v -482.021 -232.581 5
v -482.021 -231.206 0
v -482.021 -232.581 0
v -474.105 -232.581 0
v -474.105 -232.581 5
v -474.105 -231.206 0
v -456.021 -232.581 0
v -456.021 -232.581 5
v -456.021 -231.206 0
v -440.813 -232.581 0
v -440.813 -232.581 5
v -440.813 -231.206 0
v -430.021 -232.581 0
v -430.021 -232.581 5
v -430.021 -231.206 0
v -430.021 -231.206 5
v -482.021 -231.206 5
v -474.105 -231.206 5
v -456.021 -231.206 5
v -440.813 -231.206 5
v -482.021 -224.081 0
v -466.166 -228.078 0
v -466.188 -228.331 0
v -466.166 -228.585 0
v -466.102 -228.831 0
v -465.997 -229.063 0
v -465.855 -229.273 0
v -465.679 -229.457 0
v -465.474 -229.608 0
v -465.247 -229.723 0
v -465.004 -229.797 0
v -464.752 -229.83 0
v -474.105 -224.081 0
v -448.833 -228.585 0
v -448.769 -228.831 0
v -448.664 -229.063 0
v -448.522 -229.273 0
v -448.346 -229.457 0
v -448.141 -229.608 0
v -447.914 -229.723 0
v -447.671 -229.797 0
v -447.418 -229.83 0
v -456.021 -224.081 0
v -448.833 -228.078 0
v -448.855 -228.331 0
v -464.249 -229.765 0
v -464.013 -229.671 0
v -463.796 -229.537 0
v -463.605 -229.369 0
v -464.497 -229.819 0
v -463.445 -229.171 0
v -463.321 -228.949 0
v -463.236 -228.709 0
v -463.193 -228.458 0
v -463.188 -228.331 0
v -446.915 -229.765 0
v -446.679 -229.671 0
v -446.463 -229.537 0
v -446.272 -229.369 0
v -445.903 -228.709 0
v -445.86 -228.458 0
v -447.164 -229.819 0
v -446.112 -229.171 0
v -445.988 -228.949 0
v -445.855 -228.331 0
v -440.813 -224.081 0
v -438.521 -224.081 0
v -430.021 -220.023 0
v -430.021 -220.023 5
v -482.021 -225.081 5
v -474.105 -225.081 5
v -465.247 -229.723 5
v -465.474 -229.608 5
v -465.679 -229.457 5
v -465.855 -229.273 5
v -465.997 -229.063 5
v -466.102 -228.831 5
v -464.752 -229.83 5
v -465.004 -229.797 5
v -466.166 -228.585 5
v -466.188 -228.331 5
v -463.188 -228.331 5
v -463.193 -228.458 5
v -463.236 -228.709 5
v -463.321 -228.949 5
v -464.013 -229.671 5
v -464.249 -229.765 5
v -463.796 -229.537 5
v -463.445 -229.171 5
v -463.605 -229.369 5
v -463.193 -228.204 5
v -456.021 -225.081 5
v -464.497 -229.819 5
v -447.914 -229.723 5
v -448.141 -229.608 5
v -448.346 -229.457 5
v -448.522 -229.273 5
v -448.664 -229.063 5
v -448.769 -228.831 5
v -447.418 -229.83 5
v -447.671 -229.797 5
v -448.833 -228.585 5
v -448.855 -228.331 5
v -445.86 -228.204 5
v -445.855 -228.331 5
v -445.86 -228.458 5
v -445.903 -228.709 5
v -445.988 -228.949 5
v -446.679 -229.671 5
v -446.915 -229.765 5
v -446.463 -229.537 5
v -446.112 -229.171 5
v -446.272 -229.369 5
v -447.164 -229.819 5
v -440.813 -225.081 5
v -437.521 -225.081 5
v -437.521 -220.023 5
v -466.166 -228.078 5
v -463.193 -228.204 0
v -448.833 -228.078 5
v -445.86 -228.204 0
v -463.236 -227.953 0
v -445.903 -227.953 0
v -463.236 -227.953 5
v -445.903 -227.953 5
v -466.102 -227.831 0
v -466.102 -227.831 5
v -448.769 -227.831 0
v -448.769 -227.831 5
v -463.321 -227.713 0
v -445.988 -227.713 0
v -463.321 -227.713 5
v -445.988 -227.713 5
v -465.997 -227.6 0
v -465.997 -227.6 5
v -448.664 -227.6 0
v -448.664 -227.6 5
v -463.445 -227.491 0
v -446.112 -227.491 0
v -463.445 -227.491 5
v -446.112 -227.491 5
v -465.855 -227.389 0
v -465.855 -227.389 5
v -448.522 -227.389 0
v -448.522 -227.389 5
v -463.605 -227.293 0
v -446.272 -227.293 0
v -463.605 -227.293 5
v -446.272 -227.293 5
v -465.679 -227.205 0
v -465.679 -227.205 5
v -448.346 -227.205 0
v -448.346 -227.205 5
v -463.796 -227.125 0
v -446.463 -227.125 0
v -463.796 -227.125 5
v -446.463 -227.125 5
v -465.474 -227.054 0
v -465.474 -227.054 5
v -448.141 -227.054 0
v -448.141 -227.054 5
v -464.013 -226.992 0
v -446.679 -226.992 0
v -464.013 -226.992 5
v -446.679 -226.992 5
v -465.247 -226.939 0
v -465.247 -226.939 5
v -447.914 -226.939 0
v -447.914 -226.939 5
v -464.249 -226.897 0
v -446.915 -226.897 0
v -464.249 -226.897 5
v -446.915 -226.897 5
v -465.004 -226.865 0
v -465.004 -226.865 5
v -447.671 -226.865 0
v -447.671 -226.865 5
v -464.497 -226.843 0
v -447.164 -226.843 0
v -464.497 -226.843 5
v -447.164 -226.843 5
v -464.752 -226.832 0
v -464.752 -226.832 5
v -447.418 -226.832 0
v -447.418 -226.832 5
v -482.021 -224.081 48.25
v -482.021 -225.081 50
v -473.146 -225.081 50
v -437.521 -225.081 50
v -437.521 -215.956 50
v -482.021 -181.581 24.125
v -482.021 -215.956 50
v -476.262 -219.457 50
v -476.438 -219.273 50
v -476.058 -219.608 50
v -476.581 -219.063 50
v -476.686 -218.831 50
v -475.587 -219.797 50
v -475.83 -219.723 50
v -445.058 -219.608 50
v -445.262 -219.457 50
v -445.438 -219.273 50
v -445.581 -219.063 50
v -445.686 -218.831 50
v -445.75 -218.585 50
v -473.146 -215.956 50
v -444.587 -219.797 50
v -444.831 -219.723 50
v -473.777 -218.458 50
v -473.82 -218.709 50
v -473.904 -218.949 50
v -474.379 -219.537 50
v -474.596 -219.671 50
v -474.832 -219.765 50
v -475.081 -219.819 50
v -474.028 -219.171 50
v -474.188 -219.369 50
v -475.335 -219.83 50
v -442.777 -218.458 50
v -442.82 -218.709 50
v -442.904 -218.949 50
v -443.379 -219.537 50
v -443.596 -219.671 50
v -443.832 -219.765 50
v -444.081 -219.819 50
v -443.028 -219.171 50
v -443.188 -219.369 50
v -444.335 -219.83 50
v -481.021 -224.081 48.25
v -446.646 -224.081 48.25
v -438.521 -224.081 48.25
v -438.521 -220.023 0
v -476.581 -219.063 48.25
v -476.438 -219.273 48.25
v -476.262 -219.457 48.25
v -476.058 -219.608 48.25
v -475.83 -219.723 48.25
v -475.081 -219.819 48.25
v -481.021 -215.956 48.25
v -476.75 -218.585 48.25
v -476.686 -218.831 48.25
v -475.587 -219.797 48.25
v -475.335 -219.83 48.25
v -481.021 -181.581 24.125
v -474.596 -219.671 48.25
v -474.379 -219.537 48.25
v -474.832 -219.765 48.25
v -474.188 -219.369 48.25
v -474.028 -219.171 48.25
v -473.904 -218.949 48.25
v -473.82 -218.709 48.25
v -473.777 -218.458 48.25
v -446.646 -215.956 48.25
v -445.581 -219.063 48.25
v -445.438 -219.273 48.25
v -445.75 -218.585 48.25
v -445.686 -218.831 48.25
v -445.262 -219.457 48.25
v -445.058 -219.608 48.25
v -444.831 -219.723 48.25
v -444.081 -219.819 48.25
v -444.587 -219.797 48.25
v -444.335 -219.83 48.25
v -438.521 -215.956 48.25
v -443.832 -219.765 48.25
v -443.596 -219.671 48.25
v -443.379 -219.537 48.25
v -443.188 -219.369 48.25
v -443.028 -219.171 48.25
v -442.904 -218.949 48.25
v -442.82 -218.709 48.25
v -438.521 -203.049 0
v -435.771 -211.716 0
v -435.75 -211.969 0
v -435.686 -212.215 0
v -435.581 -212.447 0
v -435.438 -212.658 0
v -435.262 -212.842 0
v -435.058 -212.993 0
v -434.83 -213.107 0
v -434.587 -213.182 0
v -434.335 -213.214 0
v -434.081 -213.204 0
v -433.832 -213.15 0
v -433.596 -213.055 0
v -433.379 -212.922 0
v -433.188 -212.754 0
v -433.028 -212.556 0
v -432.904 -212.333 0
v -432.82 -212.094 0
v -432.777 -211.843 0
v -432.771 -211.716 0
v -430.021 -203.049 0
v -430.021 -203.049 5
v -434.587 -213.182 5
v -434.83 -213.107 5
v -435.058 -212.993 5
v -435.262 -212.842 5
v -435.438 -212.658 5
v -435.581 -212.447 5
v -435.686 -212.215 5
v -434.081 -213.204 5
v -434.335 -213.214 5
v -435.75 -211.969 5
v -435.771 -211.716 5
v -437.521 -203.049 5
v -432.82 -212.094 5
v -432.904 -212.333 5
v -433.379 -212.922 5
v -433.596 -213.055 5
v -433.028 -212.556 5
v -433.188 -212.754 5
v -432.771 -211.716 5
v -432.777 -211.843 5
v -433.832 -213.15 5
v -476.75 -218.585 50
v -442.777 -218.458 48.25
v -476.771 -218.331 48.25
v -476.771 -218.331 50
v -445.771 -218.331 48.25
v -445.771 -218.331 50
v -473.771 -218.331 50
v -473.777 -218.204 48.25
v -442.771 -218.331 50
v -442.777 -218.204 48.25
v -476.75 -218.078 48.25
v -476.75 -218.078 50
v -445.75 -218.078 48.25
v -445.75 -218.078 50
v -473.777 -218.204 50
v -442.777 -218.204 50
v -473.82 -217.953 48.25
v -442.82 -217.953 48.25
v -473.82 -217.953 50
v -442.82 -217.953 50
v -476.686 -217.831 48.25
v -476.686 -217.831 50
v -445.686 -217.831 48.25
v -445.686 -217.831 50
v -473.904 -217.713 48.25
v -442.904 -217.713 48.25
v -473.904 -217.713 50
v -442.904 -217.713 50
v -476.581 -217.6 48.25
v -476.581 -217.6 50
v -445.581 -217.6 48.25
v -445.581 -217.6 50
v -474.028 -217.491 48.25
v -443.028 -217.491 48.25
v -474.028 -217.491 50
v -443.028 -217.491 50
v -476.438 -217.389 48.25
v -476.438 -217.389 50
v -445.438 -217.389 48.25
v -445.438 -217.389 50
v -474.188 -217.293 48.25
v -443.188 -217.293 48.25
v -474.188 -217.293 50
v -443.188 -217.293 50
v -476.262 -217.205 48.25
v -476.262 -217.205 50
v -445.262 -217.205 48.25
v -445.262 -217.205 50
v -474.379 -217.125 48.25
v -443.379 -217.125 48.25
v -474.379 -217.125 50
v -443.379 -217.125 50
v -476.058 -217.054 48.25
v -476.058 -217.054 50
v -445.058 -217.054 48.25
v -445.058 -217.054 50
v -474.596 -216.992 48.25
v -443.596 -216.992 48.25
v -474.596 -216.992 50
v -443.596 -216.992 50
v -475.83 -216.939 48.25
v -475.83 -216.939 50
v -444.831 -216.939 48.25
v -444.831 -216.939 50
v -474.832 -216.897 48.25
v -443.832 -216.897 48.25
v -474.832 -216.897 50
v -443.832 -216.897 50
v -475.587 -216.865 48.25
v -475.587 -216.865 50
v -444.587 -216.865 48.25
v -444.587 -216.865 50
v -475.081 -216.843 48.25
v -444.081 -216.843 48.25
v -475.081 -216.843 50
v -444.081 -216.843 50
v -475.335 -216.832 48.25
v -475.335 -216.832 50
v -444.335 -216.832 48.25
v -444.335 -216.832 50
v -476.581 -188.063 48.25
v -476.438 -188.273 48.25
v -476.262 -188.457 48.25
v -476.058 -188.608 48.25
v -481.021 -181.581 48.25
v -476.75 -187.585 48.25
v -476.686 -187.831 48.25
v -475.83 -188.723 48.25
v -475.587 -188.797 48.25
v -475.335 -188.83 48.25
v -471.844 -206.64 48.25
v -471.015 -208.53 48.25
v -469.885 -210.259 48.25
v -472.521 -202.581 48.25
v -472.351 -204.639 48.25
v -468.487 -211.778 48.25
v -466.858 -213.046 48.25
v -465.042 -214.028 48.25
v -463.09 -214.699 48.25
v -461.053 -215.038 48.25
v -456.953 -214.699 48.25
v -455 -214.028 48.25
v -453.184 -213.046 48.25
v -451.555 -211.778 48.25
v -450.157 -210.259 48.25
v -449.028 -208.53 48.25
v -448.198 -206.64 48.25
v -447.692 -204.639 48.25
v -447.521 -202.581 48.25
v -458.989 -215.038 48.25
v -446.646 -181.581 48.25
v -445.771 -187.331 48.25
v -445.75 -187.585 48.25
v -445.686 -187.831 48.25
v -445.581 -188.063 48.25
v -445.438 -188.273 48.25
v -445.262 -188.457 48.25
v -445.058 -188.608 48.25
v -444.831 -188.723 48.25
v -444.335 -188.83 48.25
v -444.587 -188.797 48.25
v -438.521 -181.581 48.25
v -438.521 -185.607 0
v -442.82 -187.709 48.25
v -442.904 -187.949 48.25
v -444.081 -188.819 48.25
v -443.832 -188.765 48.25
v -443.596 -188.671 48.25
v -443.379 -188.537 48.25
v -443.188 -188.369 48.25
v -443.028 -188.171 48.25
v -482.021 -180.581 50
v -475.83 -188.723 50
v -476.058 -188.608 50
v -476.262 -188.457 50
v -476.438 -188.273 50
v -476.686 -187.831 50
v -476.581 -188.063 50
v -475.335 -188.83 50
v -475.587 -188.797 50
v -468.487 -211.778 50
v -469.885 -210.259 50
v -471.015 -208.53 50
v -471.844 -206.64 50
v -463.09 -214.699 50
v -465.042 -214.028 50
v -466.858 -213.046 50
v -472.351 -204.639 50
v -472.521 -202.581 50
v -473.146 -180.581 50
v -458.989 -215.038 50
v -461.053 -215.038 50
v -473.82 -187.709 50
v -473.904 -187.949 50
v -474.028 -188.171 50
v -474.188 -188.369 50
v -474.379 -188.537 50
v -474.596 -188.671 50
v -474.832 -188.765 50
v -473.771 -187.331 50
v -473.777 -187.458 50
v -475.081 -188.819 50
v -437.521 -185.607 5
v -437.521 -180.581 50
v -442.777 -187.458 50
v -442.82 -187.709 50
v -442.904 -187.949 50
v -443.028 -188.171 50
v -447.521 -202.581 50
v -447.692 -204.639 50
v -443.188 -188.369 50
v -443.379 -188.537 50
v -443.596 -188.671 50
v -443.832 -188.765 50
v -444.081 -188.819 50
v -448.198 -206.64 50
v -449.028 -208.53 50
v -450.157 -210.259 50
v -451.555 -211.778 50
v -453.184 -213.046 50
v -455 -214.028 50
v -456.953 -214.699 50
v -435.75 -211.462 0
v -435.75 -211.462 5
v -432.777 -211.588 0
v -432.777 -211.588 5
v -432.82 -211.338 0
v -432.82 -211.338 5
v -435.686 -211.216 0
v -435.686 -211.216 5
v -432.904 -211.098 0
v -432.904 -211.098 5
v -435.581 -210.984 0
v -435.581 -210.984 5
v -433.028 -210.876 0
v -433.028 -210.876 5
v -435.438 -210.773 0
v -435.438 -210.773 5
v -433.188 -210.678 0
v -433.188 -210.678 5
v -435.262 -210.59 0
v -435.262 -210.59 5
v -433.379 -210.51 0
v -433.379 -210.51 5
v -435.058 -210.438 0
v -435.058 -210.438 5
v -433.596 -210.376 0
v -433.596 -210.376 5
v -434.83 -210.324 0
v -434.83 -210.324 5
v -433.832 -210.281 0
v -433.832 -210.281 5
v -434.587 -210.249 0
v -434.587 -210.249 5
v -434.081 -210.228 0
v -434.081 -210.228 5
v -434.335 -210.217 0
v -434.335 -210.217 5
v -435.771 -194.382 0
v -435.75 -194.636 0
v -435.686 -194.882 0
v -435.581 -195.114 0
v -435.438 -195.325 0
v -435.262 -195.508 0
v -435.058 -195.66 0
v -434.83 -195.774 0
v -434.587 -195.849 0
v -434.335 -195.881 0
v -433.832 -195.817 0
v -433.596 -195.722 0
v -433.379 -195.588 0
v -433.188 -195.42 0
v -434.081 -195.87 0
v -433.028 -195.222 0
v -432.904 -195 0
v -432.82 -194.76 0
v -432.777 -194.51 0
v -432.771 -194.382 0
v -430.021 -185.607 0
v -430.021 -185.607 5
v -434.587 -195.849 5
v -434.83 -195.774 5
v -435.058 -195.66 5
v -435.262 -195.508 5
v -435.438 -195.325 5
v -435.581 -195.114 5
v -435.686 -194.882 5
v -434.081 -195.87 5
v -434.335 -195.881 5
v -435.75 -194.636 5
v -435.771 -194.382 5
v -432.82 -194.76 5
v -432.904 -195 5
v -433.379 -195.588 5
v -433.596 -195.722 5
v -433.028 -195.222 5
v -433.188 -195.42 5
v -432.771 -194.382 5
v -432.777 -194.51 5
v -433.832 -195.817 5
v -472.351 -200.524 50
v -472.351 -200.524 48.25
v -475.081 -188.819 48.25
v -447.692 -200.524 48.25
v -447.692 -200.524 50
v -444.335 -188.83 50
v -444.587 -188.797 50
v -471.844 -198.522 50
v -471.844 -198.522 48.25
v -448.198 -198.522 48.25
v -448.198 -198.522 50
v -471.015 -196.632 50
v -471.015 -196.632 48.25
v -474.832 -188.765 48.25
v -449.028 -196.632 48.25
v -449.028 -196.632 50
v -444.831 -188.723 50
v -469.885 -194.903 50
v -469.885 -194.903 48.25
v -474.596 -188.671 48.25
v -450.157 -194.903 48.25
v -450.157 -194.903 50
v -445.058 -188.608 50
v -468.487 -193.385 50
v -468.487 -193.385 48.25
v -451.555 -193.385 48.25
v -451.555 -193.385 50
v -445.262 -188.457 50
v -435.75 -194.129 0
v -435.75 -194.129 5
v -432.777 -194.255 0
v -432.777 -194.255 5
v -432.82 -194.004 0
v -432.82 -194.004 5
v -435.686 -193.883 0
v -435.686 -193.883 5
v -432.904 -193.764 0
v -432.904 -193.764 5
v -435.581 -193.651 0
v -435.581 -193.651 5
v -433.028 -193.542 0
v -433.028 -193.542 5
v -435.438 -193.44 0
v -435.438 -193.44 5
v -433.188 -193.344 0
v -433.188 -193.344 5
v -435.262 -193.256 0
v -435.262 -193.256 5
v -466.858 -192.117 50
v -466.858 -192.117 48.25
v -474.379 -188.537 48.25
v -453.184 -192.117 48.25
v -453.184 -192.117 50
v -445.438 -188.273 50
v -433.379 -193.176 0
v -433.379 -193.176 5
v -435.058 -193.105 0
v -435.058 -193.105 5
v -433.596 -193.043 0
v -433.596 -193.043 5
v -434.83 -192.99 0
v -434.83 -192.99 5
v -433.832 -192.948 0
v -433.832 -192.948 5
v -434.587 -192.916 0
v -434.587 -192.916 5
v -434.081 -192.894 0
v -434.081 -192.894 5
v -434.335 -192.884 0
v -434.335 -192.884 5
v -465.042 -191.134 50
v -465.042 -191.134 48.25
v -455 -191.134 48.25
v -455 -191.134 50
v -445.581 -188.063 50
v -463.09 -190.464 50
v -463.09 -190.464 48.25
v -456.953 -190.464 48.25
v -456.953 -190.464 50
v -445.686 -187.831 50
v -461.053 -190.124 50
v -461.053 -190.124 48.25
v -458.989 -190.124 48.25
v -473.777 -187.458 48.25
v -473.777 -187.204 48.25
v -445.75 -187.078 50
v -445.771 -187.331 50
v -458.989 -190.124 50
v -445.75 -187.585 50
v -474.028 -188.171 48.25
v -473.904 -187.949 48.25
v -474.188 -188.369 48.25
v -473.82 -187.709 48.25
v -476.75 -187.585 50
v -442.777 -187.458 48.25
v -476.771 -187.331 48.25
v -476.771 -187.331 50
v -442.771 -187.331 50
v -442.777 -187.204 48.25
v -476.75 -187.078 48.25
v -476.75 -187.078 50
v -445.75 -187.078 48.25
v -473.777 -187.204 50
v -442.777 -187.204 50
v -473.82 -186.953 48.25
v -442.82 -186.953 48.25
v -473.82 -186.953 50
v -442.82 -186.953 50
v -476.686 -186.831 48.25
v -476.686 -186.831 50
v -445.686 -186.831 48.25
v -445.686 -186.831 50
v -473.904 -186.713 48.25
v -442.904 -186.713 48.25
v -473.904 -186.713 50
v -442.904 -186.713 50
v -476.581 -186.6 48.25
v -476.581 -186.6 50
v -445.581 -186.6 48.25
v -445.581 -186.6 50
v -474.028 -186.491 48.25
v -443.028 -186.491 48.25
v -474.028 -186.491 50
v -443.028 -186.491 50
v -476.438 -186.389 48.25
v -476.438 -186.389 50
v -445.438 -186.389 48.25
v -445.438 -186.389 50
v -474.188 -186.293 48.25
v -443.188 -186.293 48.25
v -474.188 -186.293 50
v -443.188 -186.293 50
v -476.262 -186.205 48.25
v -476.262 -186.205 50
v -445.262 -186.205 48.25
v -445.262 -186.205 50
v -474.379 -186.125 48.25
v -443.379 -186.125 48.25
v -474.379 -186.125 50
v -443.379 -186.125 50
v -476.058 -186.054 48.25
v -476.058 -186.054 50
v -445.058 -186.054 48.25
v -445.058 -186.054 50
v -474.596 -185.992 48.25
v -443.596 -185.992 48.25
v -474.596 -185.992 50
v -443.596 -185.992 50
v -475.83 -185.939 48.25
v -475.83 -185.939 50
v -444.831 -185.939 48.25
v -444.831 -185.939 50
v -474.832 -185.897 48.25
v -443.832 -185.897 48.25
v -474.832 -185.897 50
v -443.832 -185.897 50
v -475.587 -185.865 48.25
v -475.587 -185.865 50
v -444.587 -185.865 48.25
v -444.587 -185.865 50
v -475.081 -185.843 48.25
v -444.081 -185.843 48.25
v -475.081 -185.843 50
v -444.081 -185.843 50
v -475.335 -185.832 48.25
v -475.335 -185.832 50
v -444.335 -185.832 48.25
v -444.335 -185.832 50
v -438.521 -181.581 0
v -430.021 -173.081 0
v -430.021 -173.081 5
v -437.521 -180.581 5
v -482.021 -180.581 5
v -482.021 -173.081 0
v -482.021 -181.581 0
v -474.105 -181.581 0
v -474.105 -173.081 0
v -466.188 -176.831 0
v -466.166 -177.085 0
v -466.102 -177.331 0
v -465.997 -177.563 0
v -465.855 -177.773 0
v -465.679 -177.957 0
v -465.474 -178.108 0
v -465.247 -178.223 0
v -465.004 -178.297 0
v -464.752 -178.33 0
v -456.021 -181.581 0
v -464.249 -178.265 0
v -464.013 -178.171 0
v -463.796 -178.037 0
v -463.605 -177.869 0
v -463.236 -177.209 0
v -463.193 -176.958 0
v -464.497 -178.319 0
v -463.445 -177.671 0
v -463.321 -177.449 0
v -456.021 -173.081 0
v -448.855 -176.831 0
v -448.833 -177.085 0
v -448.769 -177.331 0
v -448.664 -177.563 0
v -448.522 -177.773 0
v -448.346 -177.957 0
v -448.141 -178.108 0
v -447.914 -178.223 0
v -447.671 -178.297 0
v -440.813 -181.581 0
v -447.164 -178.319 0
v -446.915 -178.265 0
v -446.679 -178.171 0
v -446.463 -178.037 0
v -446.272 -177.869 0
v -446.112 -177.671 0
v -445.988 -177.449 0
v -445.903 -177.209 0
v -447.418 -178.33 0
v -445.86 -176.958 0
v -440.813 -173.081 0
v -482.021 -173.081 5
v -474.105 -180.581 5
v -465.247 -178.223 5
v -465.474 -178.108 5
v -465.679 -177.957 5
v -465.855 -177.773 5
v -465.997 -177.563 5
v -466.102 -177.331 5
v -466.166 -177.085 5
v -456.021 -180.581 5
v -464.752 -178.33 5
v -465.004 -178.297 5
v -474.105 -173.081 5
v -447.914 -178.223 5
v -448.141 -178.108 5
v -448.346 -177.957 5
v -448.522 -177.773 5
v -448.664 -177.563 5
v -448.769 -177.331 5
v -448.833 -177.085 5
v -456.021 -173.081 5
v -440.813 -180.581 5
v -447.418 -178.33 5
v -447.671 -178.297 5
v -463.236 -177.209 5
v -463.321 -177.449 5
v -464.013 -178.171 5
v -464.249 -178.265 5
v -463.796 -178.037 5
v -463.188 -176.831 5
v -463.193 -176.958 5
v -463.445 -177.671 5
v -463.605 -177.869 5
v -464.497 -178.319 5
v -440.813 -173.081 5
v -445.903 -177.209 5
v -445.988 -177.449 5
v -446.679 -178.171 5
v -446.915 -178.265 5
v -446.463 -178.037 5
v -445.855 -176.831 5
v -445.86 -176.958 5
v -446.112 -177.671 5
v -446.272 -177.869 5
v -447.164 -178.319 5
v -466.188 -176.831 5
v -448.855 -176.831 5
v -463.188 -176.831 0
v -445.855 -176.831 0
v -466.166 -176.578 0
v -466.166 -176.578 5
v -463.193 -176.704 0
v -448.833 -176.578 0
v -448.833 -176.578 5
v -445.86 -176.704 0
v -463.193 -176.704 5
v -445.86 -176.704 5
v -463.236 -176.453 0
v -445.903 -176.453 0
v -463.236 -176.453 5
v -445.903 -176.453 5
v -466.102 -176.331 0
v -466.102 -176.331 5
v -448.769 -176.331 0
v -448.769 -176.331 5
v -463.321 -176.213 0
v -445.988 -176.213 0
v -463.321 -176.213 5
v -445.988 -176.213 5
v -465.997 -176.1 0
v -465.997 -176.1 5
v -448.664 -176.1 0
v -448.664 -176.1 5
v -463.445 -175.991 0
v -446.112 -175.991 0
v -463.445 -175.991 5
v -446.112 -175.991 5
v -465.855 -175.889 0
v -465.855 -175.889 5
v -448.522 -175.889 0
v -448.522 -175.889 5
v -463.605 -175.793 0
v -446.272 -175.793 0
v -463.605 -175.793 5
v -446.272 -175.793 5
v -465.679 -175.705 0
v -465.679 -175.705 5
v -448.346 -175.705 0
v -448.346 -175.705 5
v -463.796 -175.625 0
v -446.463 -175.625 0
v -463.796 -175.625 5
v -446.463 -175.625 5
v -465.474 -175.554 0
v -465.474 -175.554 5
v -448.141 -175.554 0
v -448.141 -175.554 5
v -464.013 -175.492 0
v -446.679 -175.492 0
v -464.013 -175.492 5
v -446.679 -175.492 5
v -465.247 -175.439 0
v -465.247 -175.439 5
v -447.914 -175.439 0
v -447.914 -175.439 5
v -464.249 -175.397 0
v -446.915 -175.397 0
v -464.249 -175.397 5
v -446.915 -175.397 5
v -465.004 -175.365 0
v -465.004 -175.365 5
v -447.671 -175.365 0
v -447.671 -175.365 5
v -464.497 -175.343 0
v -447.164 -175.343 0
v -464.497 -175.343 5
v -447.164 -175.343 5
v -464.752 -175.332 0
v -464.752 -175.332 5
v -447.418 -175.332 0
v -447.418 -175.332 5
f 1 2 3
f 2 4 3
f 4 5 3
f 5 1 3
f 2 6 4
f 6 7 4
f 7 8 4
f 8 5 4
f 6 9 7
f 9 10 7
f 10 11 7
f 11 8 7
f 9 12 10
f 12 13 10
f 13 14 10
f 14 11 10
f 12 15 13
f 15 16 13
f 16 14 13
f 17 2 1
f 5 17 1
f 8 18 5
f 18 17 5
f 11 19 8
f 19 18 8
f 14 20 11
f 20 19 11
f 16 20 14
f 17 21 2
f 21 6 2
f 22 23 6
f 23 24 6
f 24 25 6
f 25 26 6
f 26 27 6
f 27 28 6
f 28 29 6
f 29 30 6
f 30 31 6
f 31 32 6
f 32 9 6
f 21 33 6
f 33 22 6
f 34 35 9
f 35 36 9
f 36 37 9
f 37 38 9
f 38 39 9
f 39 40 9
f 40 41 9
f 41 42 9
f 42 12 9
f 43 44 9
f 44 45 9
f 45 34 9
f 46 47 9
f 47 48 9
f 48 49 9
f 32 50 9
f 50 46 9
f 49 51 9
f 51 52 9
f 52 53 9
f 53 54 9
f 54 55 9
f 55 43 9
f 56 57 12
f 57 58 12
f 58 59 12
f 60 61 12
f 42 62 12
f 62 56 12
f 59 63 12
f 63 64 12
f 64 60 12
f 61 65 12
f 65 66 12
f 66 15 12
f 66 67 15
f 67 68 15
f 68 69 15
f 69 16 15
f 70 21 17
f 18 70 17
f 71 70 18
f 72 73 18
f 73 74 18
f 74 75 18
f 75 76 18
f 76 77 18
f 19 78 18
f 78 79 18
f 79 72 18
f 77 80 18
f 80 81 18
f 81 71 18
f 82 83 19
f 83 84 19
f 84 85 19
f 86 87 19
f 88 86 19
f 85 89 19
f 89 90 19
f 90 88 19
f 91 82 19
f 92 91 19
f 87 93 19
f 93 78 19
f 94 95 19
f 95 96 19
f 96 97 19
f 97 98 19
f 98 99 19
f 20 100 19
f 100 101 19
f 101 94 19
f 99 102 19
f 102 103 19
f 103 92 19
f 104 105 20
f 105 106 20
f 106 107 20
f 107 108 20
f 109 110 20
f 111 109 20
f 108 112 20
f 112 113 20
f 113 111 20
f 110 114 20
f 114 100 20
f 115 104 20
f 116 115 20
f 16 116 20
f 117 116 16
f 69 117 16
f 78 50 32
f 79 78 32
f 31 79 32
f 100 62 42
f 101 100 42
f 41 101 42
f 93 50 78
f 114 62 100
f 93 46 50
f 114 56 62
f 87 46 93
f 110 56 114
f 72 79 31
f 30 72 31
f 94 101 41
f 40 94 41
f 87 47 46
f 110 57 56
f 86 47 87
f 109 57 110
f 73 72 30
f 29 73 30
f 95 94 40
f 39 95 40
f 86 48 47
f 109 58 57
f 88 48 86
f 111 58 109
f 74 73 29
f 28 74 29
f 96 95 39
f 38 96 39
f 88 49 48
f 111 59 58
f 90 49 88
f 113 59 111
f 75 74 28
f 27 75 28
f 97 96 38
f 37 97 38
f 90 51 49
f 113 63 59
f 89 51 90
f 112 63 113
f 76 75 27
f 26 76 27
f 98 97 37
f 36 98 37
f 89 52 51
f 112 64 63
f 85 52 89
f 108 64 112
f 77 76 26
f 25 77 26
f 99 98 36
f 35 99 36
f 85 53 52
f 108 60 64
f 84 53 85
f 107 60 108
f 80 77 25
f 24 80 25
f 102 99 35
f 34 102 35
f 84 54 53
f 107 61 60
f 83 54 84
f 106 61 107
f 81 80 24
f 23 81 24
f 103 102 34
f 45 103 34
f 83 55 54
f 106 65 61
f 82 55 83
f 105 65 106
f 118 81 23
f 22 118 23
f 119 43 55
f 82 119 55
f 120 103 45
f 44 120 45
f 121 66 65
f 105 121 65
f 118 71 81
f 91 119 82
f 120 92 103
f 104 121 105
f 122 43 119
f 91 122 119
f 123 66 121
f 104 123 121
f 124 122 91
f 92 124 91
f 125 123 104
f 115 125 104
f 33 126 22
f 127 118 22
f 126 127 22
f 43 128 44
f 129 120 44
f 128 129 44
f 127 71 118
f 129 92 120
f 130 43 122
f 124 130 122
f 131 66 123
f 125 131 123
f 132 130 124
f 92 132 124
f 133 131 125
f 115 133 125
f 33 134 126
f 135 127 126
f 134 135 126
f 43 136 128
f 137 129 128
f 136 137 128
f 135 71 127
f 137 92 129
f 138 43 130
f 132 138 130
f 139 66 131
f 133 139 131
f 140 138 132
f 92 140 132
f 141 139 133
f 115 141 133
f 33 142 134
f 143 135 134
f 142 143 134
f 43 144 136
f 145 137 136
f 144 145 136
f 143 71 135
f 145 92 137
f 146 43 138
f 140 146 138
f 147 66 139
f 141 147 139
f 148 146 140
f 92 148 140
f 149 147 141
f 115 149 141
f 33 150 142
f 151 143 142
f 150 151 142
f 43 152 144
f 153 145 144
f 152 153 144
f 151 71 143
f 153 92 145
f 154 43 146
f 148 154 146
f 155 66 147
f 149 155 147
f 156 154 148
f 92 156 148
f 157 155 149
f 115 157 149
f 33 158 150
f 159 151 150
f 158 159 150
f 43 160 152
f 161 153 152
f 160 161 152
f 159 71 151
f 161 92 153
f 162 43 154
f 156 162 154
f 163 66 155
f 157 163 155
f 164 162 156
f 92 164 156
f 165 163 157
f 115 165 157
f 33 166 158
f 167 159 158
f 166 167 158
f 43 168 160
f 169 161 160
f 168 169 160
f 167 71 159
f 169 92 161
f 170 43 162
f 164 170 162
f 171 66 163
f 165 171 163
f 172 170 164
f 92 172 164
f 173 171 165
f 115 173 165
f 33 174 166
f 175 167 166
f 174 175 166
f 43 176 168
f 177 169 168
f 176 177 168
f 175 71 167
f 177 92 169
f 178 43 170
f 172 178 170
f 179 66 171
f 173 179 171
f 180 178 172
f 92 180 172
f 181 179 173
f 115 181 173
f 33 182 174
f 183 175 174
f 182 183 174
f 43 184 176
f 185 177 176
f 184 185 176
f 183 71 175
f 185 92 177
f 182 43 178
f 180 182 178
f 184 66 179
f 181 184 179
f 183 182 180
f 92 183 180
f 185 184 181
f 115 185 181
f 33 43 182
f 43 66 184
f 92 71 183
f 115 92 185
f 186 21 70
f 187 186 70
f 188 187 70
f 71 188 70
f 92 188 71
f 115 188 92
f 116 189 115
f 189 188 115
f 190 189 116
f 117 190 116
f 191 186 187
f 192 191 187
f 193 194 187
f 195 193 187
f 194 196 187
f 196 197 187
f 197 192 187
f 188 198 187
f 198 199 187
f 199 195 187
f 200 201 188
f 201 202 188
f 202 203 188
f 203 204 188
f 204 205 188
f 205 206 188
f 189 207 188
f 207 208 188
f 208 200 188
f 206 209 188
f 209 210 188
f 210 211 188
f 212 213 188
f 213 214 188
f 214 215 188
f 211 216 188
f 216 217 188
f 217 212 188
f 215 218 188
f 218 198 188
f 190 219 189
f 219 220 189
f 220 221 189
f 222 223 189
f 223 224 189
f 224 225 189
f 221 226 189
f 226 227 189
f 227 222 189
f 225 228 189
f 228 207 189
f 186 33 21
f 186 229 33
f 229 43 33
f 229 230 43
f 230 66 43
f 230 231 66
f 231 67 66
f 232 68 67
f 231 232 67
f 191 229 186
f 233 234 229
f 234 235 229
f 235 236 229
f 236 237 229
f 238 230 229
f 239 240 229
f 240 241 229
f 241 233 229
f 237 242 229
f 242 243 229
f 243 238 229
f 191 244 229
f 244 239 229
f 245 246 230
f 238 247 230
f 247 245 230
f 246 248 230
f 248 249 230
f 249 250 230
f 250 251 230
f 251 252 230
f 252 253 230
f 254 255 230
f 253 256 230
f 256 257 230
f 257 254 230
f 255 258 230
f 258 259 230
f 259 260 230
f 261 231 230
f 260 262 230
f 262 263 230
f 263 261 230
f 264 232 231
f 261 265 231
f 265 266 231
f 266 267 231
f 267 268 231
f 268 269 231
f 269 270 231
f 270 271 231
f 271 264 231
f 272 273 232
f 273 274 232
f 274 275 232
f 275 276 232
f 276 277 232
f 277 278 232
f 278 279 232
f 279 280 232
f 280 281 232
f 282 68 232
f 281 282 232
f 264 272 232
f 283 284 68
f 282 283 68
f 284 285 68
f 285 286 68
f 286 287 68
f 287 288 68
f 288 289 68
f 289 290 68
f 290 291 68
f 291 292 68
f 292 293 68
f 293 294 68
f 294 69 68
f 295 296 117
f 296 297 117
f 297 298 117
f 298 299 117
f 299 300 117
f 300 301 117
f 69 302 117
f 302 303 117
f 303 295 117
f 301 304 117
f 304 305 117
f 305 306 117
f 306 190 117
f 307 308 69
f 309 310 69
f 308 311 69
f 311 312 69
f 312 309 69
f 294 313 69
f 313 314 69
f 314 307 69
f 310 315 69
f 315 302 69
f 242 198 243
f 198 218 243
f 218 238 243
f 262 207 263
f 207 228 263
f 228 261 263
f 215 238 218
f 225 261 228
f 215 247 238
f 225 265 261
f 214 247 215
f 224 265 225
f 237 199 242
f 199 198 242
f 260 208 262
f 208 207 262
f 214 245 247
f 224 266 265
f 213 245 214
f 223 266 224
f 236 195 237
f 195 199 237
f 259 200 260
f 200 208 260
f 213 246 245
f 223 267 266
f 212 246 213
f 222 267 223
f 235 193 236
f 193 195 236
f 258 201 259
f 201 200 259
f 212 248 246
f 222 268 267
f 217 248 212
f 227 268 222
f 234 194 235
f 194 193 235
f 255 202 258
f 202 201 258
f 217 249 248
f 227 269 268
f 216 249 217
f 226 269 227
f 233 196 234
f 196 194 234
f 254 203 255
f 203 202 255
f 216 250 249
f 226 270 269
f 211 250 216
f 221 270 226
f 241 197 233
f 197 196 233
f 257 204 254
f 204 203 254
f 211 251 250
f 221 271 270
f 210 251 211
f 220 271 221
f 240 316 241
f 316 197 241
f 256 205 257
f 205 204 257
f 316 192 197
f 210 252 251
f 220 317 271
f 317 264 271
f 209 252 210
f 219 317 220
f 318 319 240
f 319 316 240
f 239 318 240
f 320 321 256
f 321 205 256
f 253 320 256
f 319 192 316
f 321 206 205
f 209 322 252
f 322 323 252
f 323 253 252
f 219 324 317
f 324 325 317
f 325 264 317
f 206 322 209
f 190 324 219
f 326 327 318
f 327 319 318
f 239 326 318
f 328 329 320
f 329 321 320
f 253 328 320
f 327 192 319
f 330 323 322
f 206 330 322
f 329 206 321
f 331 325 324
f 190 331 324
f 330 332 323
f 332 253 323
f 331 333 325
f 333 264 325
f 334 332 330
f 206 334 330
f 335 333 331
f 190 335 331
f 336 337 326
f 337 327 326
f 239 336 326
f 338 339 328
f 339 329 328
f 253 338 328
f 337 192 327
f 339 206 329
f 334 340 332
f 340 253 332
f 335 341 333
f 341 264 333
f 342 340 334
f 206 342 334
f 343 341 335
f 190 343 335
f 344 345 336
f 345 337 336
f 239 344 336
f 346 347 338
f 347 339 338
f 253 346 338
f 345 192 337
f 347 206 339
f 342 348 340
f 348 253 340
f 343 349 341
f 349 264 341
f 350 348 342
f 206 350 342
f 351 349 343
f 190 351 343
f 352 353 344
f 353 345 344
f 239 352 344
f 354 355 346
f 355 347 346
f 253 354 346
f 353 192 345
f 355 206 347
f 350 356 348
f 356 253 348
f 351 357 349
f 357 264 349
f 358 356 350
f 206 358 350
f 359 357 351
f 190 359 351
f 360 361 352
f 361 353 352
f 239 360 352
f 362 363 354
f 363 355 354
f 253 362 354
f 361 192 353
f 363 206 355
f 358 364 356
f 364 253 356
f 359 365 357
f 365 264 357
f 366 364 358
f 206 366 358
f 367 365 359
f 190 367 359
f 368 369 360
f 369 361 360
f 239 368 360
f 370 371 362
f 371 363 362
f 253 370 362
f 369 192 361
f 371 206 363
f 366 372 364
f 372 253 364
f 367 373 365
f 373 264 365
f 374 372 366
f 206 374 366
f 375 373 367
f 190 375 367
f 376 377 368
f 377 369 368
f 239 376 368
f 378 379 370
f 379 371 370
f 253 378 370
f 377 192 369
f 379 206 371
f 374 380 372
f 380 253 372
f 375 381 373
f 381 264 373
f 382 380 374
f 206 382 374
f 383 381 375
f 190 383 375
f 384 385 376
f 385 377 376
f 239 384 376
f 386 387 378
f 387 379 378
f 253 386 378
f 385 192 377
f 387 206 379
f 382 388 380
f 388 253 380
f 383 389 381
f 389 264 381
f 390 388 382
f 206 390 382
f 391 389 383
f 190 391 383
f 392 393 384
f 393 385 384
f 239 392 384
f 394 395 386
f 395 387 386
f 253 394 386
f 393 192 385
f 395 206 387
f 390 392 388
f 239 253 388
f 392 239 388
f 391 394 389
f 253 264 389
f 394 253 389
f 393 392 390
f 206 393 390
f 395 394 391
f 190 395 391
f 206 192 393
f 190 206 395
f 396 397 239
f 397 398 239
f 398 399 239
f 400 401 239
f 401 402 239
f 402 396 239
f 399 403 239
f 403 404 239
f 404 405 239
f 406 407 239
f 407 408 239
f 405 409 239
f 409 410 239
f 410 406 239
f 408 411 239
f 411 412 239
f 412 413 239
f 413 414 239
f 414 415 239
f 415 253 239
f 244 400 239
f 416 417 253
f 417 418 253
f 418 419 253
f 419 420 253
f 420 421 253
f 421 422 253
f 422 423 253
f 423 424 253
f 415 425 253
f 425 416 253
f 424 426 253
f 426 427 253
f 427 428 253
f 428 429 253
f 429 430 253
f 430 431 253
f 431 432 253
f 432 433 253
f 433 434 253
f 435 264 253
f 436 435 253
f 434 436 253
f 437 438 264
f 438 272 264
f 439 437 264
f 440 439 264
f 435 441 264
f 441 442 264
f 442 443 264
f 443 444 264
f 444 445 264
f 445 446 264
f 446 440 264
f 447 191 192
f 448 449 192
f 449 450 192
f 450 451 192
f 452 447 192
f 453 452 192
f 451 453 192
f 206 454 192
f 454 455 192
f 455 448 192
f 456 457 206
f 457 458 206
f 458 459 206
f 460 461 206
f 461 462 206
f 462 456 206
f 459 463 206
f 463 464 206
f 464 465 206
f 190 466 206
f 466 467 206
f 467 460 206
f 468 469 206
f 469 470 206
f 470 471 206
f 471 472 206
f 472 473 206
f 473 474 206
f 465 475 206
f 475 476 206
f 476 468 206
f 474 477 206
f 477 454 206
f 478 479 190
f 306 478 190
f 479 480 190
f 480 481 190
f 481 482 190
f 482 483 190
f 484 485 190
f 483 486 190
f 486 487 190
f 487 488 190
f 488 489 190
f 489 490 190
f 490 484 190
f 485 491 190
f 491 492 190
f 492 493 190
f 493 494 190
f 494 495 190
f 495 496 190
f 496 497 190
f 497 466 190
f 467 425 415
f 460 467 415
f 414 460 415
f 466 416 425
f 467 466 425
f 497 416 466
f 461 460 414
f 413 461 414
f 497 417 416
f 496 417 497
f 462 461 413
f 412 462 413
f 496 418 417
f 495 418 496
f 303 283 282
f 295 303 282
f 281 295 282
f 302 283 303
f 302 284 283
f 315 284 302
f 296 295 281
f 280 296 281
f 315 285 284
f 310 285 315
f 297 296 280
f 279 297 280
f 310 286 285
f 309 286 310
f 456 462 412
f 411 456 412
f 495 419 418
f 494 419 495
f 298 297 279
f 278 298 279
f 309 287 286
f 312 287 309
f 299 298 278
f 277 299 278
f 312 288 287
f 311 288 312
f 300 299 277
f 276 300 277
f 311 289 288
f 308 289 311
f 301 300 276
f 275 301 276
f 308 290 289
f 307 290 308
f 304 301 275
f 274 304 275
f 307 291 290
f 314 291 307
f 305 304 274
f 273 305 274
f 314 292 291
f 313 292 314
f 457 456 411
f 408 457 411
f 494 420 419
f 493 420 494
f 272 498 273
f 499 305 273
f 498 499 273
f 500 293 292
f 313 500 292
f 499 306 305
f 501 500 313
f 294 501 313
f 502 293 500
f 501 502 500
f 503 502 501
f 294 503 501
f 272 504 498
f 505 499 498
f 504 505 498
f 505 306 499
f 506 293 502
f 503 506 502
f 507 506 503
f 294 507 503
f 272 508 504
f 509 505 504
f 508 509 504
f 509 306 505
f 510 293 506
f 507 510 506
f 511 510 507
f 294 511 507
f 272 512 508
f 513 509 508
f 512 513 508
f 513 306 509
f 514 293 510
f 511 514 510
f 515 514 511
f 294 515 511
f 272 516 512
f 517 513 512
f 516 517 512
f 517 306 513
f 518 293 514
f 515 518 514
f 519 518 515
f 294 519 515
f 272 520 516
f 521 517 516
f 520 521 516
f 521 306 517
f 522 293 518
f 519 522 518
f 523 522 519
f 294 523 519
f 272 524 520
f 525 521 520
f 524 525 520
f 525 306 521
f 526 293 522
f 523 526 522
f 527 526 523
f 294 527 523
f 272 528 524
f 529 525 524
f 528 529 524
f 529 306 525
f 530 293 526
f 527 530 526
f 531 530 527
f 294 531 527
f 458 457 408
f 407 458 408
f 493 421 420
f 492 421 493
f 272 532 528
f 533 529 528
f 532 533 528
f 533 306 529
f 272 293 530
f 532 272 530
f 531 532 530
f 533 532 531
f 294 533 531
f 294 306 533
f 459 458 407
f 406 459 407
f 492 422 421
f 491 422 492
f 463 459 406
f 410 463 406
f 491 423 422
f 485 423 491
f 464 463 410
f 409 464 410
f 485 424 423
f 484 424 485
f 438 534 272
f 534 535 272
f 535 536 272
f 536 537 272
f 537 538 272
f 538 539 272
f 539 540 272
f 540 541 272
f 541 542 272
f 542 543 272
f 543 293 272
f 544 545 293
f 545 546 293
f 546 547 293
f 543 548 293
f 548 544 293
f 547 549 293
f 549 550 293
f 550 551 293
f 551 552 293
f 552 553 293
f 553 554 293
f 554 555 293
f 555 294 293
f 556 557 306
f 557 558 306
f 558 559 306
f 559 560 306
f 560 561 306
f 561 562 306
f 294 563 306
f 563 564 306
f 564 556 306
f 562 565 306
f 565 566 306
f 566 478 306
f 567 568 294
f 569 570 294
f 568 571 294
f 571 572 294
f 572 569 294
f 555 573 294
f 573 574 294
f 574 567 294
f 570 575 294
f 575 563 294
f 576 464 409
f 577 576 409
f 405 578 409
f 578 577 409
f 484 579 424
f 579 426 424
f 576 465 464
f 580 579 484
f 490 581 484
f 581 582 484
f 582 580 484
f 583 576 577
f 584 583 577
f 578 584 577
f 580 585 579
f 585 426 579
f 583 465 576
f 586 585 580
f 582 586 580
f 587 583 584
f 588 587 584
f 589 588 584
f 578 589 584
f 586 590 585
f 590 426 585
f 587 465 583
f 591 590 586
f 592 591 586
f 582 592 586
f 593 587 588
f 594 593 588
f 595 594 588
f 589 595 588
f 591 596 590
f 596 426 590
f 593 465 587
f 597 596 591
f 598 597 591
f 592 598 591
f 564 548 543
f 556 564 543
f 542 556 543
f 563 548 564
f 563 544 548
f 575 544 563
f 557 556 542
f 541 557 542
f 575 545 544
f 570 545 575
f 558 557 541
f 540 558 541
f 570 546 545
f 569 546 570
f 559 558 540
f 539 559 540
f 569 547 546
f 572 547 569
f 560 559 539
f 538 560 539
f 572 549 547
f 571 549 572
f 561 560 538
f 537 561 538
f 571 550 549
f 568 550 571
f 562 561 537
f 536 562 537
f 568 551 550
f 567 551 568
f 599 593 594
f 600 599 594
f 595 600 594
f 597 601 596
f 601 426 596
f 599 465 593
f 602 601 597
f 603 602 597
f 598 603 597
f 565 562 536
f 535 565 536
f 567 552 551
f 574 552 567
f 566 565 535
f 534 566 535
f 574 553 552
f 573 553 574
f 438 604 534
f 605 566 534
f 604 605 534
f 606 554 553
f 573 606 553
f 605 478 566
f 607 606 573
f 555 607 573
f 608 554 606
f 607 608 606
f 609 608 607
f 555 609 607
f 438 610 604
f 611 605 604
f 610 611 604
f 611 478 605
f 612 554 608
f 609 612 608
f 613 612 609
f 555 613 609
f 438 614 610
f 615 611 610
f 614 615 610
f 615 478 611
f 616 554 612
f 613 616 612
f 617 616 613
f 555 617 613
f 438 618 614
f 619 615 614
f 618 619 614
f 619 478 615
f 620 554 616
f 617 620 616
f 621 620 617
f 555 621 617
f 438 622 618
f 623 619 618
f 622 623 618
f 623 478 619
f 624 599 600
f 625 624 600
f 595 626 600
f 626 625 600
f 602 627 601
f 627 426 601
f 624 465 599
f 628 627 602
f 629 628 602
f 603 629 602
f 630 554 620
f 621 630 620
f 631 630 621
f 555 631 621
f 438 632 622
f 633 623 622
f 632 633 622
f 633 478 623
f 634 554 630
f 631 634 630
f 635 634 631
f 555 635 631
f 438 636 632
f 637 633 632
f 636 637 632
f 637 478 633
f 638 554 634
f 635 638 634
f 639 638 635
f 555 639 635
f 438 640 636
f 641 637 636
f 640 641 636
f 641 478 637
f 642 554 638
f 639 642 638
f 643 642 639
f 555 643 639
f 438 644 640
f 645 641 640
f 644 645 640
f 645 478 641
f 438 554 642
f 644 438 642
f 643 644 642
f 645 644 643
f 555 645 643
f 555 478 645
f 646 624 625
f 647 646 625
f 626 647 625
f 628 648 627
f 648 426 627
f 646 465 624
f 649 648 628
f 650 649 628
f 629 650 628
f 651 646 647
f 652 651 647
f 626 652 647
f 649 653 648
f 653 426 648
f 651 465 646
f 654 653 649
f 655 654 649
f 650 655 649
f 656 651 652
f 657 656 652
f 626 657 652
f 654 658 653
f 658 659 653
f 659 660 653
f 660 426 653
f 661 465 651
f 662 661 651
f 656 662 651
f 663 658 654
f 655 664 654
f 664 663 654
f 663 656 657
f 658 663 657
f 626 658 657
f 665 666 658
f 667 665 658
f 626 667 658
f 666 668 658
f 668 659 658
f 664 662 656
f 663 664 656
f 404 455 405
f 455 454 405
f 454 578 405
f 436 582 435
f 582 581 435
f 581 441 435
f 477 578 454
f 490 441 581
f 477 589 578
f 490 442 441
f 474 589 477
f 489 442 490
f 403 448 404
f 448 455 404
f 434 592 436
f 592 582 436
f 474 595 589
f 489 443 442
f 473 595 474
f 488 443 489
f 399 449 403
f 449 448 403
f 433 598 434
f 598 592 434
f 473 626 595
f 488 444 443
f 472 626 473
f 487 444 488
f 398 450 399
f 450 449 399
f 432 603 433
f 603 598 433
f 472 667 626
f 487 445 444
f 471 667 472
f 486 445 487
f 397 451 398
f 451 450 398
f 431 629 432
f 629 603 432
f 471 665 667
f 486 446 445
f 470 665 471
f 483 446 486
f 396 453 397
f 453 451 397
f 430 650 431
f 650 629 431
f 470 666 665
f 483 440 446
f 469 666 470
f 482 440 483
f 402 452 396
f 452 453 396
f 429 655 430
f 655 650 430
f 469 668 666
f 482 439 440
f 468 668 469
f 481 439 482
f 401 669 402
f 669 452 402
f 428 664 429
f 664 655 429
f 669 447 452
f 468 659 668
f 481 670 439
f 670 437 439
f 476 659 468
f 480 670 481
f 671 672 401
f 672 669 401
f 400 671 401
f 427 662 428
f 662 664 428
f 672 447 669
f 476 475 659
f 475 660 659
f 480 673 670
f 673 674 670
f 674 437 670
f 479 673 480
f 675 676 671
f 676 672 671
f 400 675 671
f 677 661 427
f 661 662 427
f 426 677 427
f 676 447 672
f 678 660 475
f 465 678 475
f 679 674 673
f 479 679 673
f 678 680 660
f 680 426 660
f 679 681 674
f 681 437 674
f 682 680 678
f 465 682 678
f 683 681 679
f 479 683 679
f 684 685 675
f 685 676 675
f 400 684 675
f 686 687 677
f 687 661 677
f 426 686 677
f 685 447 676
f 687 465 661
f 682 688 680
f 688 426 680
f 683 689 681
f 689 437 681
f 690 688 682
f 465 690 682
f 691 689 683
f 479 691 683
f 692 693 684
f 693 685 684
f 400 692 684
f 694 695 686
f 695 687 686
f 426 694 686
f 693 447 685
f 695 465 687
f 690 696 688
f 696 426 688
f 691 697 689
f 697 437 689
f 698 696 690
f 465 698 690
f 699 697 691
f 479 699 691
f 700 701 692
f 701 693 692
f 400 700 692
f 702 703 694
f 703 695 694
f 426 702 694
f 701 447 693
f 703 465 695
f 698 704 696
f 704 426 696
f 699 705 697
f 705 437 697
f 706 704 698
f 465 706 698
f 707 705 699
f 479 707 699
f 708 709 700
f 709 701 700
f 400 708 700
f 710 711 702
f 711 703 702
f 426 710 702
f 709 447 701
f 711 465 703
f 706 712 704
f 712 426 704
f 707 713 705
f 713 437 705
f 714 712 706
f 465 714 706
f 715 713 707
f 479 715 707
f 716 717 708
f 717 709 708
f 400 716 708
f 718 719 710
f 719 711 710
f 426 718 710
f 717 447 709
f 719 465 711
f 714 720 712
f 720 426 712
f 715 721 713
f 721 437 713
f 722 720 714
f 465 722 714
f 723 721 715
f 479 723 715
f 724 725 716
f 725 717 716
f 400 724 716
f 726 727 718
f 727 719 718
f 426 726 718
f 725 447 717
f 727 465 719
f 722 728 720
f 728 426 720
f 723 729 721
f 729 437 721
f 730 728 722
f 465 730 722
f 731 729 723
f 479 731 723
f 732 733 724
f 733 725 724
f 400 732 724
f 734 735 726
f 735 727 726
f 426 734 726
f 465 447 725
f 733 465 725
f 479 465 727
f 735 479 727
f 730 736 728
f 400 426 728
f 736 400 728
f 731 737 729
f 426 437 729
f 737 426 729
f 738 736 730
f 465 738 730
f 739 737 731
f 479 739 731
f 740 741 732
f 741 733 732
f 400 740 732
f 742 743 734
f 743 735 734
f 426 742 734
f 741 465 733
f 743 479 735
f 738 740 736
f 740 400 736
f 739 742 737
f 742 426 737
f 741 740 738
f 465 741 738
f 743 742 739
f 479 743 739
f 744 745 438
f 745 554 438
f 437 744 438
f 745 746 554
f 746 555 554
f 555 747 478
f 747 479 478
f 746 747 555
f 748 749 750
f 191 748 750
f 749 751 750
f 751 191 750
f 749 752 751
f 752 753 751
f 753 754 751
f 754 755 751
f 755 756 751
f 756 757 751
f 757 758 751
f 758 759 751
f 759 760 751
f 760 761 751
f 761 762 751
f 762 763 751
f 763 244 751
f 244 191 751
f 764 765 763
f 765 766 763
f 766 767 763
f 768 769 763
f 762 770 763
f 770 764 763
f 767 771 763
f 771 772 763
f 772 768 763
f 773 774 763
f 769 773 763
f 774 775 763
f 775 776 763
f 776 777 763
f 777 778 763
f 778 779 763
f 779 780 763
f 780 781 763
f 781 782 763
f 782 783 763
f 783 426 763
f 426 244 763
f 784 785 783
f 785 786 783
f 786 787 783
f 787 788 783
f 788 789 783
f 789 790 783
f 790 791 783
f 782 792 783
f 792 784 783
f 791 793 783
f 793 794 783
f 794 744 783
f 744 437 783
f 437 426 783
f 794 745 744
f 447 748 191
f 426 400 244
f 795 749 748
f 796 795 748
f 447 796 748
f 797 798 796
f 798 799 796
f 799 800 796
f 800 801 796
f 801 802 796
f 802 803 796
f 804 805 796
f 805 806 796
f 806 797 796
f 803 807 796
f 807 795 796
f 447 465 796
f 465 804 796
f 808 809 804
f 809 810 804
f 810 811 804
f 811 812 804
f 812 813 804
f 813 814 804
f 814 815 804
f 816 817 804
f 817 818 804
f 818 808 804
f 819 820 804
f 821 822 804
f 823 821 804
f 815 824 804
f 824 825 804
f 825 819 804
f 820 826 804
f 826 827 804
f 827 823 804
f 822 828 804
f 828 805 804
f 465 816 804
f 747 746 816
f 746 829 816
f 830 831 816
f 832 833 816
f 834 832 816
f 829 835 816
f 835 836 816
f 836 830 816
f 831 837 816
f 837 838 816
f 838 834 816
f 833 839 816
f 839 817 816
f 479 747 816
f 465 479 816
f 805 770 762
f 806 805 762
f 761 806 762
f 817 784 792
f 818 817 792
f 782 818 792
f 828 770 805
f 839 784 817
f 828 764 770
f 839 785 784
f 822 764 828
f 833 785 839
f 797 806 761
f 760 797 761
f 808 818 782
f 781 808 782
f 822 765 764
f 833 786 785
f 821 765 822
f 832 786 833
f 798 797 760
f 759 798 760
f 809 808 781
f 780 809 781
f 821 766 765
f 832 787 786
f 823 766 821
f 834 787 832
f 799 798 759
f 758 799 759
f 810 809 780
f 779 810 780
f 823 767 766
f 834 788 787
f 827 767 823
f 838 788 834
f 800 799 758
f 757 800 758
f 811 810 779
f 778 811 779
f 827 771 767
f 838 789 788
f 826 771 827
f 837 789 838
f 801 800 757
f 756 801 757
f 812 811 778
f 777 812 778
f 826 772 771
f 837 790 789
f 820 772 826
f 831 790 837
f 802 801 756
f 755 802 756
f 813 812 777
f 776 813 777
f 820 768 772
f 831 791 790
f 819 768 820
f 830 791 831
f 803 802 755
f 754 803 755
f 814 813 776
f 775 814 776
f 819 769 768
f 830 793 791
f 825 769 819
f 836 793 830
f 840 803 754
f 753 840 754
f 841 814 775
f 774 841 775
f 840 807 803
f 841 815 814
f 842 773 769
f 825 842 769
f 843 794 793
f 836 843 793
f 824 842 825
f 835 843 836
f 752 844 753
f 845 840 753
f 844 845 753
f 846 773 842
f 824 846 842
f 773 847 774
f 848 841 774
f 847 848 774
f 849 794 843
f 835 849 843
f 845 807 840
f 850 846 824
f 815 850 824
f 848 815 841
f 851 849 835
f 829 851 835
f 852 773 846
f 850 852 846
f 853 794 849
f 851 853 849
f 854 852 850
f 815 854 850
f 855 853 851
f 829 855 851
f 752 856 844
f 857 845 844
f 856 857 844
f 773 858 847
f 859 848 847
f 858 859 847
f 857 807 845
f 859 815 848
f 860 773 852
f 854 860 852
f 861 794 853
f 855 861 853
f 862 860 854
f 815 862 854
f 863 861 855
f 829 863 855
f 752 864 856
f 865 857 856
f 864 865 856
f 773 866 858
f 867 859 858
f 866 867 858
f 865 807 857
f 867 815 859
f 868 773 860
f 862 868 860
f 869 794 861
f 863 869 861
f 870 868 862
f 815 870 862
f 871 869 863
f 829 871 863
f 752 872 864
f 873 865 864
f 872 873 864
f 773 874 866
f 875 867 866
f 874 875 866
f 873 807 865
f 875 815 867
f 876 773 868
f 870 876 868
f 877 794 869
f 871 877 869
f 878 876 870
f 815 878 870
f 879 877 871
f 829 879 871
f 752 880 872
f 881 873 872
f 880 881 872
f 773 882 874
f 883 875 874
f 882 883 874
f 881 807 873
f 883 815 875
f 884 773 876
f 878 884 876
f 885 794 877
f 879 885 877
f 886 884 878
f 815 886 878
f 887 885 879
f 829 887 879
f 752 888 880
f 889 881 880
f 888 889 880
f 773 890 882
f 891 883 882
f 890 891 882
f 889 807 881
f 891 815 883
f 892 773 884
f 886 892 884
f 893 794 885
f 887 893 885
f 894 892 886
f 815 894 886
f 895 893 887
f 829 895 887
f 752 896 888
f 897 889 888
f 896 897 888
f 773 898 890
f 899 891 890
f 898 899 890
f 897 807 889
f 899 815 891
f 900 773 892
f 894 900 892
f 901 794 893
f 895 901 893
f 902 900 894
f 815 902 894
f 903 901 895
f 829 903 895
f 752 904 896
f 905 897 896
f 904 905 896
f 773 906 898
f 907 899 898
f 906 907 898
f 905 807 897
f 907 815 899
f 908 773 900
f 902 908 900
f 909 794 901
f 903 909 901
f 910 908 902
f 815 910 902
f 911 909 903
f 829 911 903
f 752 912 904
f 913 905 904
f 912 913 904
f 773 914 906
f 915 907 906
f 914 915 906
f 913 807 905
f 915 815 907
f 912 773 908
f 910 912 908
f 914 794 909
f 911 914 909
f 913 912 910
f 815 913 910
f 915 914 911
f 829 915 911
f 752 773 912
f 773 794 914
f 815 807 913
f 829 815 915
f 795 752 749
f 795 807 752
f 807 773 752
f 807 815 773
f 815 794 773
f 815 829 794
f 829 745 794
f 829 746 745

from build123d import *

# Parameters (mm, degrees)
SKETCH6_R           = 1.5
BOSS_EXTRUDE4_DEPTH = 5
SKETCH8_W           = 44.5
SKETCH8_H           = 44.5
SKETCH8_R           = 1.5
SKETCH8_R_2         = 12.5
BOSS_EXTRUDE5_DEPTH = 50
SKETCH7_W           = 43.5
SKETCH7_H           = 42.5
CUT_EXTRUDE4_DEPTH  = 48.25
BOSS_EXTRUDE6_DEPTH = 1


with BuildPart() as part:
    # Sketch6 → Boss-Extrude4 (new body)
    with BuildSketch(Plane.XY):
        Polygon((-437.521213625, -225.081134847), (-482.021213625, -225.081134847), (-482.021213625, -232.581134847), (-430.021213625, -232.581134847), (-430.021213625, -173.081134847), (-482.021213625, -173.081134847), (-482.021213625, -180.581134847), (-437.521213625, -180.581134847), align=None)
        with Locations((-464.687880625, -228.331134847)):
            Circle(SKETCH6_R, mode=Mode.SUBTRACT)
        with Locations((-447.354547625, -228.331134847)):
            Circle(SKETCH6_R, mode=Mode.SUBTRACT)
        with Locations((-434.271213625, -211.715651861)):
            Circle(SKETCH6_R, mode=Mode.SUBTRACT)
        with Locations((-464.687883625, -176.831134847)):
            Circle(SKETCH6_R, mode=Mode.SUBTRACT)
        with Locations((-434.271213625, -194.382318861)):
            Circle(SKETCH6_R, mode=Mode.SUBTRACT)
        with Locations((-447.354550625, -176.831134847)):
            Circle(SKETCH6_R, mode=Mode.SUBTRACT)
    extrude(amount=BOSS_EXTRUDE4_DEPTH)

    # Sketch8 → Boss-Extrude5 (add)
    with BuildSketch(Plane.XY):
        with Locations((-459.771213625, -202.831134847)):
            Rectangle(SKETCH8_W, SKETCH8_H)
        with Locations((-475.271213625, -218.331134847)):
            Circle(SKETCH8_R, mode=Mode.SUBTRACT)
        with Locations((-444.271213625, -218.331134847)):
            Circle(SKETCH8_R, mode=Mode.SUBTRACT)
        with Locations((-444.271213625, -187.331134847)):
            Circle(SKETCH8_R, mode=Mode.SUBTRACT)
        with Locations((-475.271213625, -187.331134847)):
            Circle(SKETCH8_R, mode=Mode.SUBTRACT)
        with Locations((-460.021213625, -202.581134847)):
            Circle(SKETCH8_R_2, mode=Mode.SUBTRACT)
    extrude(amount=BOSS_EXTRUDE5_DEPTH)

    # Sketch7 → Cut-Extrude4 (cut)
    with BuildSketch(Plane.XY):
        with Locations((-460.271213625, -202.831134847)):
            Rectangle(SKETCH7_W, SKETCH7_H)
    extrude(amount=CUT_EXTRUDE4_DEPTH, mode=Mode.SUBTRACT)

    # Sketch10 → Boss-Extrude6 (add)
    with BuildSketch(Plane.ZY.offset(482.021213625)):
        Polygon((24.125, -181.581134847), (48.25, -224.081134847), (48.25, -181.581134847), align=None)
    extrude(amount=-BOSS_EXTRUDE6_DEPTH)


solid = part.part
